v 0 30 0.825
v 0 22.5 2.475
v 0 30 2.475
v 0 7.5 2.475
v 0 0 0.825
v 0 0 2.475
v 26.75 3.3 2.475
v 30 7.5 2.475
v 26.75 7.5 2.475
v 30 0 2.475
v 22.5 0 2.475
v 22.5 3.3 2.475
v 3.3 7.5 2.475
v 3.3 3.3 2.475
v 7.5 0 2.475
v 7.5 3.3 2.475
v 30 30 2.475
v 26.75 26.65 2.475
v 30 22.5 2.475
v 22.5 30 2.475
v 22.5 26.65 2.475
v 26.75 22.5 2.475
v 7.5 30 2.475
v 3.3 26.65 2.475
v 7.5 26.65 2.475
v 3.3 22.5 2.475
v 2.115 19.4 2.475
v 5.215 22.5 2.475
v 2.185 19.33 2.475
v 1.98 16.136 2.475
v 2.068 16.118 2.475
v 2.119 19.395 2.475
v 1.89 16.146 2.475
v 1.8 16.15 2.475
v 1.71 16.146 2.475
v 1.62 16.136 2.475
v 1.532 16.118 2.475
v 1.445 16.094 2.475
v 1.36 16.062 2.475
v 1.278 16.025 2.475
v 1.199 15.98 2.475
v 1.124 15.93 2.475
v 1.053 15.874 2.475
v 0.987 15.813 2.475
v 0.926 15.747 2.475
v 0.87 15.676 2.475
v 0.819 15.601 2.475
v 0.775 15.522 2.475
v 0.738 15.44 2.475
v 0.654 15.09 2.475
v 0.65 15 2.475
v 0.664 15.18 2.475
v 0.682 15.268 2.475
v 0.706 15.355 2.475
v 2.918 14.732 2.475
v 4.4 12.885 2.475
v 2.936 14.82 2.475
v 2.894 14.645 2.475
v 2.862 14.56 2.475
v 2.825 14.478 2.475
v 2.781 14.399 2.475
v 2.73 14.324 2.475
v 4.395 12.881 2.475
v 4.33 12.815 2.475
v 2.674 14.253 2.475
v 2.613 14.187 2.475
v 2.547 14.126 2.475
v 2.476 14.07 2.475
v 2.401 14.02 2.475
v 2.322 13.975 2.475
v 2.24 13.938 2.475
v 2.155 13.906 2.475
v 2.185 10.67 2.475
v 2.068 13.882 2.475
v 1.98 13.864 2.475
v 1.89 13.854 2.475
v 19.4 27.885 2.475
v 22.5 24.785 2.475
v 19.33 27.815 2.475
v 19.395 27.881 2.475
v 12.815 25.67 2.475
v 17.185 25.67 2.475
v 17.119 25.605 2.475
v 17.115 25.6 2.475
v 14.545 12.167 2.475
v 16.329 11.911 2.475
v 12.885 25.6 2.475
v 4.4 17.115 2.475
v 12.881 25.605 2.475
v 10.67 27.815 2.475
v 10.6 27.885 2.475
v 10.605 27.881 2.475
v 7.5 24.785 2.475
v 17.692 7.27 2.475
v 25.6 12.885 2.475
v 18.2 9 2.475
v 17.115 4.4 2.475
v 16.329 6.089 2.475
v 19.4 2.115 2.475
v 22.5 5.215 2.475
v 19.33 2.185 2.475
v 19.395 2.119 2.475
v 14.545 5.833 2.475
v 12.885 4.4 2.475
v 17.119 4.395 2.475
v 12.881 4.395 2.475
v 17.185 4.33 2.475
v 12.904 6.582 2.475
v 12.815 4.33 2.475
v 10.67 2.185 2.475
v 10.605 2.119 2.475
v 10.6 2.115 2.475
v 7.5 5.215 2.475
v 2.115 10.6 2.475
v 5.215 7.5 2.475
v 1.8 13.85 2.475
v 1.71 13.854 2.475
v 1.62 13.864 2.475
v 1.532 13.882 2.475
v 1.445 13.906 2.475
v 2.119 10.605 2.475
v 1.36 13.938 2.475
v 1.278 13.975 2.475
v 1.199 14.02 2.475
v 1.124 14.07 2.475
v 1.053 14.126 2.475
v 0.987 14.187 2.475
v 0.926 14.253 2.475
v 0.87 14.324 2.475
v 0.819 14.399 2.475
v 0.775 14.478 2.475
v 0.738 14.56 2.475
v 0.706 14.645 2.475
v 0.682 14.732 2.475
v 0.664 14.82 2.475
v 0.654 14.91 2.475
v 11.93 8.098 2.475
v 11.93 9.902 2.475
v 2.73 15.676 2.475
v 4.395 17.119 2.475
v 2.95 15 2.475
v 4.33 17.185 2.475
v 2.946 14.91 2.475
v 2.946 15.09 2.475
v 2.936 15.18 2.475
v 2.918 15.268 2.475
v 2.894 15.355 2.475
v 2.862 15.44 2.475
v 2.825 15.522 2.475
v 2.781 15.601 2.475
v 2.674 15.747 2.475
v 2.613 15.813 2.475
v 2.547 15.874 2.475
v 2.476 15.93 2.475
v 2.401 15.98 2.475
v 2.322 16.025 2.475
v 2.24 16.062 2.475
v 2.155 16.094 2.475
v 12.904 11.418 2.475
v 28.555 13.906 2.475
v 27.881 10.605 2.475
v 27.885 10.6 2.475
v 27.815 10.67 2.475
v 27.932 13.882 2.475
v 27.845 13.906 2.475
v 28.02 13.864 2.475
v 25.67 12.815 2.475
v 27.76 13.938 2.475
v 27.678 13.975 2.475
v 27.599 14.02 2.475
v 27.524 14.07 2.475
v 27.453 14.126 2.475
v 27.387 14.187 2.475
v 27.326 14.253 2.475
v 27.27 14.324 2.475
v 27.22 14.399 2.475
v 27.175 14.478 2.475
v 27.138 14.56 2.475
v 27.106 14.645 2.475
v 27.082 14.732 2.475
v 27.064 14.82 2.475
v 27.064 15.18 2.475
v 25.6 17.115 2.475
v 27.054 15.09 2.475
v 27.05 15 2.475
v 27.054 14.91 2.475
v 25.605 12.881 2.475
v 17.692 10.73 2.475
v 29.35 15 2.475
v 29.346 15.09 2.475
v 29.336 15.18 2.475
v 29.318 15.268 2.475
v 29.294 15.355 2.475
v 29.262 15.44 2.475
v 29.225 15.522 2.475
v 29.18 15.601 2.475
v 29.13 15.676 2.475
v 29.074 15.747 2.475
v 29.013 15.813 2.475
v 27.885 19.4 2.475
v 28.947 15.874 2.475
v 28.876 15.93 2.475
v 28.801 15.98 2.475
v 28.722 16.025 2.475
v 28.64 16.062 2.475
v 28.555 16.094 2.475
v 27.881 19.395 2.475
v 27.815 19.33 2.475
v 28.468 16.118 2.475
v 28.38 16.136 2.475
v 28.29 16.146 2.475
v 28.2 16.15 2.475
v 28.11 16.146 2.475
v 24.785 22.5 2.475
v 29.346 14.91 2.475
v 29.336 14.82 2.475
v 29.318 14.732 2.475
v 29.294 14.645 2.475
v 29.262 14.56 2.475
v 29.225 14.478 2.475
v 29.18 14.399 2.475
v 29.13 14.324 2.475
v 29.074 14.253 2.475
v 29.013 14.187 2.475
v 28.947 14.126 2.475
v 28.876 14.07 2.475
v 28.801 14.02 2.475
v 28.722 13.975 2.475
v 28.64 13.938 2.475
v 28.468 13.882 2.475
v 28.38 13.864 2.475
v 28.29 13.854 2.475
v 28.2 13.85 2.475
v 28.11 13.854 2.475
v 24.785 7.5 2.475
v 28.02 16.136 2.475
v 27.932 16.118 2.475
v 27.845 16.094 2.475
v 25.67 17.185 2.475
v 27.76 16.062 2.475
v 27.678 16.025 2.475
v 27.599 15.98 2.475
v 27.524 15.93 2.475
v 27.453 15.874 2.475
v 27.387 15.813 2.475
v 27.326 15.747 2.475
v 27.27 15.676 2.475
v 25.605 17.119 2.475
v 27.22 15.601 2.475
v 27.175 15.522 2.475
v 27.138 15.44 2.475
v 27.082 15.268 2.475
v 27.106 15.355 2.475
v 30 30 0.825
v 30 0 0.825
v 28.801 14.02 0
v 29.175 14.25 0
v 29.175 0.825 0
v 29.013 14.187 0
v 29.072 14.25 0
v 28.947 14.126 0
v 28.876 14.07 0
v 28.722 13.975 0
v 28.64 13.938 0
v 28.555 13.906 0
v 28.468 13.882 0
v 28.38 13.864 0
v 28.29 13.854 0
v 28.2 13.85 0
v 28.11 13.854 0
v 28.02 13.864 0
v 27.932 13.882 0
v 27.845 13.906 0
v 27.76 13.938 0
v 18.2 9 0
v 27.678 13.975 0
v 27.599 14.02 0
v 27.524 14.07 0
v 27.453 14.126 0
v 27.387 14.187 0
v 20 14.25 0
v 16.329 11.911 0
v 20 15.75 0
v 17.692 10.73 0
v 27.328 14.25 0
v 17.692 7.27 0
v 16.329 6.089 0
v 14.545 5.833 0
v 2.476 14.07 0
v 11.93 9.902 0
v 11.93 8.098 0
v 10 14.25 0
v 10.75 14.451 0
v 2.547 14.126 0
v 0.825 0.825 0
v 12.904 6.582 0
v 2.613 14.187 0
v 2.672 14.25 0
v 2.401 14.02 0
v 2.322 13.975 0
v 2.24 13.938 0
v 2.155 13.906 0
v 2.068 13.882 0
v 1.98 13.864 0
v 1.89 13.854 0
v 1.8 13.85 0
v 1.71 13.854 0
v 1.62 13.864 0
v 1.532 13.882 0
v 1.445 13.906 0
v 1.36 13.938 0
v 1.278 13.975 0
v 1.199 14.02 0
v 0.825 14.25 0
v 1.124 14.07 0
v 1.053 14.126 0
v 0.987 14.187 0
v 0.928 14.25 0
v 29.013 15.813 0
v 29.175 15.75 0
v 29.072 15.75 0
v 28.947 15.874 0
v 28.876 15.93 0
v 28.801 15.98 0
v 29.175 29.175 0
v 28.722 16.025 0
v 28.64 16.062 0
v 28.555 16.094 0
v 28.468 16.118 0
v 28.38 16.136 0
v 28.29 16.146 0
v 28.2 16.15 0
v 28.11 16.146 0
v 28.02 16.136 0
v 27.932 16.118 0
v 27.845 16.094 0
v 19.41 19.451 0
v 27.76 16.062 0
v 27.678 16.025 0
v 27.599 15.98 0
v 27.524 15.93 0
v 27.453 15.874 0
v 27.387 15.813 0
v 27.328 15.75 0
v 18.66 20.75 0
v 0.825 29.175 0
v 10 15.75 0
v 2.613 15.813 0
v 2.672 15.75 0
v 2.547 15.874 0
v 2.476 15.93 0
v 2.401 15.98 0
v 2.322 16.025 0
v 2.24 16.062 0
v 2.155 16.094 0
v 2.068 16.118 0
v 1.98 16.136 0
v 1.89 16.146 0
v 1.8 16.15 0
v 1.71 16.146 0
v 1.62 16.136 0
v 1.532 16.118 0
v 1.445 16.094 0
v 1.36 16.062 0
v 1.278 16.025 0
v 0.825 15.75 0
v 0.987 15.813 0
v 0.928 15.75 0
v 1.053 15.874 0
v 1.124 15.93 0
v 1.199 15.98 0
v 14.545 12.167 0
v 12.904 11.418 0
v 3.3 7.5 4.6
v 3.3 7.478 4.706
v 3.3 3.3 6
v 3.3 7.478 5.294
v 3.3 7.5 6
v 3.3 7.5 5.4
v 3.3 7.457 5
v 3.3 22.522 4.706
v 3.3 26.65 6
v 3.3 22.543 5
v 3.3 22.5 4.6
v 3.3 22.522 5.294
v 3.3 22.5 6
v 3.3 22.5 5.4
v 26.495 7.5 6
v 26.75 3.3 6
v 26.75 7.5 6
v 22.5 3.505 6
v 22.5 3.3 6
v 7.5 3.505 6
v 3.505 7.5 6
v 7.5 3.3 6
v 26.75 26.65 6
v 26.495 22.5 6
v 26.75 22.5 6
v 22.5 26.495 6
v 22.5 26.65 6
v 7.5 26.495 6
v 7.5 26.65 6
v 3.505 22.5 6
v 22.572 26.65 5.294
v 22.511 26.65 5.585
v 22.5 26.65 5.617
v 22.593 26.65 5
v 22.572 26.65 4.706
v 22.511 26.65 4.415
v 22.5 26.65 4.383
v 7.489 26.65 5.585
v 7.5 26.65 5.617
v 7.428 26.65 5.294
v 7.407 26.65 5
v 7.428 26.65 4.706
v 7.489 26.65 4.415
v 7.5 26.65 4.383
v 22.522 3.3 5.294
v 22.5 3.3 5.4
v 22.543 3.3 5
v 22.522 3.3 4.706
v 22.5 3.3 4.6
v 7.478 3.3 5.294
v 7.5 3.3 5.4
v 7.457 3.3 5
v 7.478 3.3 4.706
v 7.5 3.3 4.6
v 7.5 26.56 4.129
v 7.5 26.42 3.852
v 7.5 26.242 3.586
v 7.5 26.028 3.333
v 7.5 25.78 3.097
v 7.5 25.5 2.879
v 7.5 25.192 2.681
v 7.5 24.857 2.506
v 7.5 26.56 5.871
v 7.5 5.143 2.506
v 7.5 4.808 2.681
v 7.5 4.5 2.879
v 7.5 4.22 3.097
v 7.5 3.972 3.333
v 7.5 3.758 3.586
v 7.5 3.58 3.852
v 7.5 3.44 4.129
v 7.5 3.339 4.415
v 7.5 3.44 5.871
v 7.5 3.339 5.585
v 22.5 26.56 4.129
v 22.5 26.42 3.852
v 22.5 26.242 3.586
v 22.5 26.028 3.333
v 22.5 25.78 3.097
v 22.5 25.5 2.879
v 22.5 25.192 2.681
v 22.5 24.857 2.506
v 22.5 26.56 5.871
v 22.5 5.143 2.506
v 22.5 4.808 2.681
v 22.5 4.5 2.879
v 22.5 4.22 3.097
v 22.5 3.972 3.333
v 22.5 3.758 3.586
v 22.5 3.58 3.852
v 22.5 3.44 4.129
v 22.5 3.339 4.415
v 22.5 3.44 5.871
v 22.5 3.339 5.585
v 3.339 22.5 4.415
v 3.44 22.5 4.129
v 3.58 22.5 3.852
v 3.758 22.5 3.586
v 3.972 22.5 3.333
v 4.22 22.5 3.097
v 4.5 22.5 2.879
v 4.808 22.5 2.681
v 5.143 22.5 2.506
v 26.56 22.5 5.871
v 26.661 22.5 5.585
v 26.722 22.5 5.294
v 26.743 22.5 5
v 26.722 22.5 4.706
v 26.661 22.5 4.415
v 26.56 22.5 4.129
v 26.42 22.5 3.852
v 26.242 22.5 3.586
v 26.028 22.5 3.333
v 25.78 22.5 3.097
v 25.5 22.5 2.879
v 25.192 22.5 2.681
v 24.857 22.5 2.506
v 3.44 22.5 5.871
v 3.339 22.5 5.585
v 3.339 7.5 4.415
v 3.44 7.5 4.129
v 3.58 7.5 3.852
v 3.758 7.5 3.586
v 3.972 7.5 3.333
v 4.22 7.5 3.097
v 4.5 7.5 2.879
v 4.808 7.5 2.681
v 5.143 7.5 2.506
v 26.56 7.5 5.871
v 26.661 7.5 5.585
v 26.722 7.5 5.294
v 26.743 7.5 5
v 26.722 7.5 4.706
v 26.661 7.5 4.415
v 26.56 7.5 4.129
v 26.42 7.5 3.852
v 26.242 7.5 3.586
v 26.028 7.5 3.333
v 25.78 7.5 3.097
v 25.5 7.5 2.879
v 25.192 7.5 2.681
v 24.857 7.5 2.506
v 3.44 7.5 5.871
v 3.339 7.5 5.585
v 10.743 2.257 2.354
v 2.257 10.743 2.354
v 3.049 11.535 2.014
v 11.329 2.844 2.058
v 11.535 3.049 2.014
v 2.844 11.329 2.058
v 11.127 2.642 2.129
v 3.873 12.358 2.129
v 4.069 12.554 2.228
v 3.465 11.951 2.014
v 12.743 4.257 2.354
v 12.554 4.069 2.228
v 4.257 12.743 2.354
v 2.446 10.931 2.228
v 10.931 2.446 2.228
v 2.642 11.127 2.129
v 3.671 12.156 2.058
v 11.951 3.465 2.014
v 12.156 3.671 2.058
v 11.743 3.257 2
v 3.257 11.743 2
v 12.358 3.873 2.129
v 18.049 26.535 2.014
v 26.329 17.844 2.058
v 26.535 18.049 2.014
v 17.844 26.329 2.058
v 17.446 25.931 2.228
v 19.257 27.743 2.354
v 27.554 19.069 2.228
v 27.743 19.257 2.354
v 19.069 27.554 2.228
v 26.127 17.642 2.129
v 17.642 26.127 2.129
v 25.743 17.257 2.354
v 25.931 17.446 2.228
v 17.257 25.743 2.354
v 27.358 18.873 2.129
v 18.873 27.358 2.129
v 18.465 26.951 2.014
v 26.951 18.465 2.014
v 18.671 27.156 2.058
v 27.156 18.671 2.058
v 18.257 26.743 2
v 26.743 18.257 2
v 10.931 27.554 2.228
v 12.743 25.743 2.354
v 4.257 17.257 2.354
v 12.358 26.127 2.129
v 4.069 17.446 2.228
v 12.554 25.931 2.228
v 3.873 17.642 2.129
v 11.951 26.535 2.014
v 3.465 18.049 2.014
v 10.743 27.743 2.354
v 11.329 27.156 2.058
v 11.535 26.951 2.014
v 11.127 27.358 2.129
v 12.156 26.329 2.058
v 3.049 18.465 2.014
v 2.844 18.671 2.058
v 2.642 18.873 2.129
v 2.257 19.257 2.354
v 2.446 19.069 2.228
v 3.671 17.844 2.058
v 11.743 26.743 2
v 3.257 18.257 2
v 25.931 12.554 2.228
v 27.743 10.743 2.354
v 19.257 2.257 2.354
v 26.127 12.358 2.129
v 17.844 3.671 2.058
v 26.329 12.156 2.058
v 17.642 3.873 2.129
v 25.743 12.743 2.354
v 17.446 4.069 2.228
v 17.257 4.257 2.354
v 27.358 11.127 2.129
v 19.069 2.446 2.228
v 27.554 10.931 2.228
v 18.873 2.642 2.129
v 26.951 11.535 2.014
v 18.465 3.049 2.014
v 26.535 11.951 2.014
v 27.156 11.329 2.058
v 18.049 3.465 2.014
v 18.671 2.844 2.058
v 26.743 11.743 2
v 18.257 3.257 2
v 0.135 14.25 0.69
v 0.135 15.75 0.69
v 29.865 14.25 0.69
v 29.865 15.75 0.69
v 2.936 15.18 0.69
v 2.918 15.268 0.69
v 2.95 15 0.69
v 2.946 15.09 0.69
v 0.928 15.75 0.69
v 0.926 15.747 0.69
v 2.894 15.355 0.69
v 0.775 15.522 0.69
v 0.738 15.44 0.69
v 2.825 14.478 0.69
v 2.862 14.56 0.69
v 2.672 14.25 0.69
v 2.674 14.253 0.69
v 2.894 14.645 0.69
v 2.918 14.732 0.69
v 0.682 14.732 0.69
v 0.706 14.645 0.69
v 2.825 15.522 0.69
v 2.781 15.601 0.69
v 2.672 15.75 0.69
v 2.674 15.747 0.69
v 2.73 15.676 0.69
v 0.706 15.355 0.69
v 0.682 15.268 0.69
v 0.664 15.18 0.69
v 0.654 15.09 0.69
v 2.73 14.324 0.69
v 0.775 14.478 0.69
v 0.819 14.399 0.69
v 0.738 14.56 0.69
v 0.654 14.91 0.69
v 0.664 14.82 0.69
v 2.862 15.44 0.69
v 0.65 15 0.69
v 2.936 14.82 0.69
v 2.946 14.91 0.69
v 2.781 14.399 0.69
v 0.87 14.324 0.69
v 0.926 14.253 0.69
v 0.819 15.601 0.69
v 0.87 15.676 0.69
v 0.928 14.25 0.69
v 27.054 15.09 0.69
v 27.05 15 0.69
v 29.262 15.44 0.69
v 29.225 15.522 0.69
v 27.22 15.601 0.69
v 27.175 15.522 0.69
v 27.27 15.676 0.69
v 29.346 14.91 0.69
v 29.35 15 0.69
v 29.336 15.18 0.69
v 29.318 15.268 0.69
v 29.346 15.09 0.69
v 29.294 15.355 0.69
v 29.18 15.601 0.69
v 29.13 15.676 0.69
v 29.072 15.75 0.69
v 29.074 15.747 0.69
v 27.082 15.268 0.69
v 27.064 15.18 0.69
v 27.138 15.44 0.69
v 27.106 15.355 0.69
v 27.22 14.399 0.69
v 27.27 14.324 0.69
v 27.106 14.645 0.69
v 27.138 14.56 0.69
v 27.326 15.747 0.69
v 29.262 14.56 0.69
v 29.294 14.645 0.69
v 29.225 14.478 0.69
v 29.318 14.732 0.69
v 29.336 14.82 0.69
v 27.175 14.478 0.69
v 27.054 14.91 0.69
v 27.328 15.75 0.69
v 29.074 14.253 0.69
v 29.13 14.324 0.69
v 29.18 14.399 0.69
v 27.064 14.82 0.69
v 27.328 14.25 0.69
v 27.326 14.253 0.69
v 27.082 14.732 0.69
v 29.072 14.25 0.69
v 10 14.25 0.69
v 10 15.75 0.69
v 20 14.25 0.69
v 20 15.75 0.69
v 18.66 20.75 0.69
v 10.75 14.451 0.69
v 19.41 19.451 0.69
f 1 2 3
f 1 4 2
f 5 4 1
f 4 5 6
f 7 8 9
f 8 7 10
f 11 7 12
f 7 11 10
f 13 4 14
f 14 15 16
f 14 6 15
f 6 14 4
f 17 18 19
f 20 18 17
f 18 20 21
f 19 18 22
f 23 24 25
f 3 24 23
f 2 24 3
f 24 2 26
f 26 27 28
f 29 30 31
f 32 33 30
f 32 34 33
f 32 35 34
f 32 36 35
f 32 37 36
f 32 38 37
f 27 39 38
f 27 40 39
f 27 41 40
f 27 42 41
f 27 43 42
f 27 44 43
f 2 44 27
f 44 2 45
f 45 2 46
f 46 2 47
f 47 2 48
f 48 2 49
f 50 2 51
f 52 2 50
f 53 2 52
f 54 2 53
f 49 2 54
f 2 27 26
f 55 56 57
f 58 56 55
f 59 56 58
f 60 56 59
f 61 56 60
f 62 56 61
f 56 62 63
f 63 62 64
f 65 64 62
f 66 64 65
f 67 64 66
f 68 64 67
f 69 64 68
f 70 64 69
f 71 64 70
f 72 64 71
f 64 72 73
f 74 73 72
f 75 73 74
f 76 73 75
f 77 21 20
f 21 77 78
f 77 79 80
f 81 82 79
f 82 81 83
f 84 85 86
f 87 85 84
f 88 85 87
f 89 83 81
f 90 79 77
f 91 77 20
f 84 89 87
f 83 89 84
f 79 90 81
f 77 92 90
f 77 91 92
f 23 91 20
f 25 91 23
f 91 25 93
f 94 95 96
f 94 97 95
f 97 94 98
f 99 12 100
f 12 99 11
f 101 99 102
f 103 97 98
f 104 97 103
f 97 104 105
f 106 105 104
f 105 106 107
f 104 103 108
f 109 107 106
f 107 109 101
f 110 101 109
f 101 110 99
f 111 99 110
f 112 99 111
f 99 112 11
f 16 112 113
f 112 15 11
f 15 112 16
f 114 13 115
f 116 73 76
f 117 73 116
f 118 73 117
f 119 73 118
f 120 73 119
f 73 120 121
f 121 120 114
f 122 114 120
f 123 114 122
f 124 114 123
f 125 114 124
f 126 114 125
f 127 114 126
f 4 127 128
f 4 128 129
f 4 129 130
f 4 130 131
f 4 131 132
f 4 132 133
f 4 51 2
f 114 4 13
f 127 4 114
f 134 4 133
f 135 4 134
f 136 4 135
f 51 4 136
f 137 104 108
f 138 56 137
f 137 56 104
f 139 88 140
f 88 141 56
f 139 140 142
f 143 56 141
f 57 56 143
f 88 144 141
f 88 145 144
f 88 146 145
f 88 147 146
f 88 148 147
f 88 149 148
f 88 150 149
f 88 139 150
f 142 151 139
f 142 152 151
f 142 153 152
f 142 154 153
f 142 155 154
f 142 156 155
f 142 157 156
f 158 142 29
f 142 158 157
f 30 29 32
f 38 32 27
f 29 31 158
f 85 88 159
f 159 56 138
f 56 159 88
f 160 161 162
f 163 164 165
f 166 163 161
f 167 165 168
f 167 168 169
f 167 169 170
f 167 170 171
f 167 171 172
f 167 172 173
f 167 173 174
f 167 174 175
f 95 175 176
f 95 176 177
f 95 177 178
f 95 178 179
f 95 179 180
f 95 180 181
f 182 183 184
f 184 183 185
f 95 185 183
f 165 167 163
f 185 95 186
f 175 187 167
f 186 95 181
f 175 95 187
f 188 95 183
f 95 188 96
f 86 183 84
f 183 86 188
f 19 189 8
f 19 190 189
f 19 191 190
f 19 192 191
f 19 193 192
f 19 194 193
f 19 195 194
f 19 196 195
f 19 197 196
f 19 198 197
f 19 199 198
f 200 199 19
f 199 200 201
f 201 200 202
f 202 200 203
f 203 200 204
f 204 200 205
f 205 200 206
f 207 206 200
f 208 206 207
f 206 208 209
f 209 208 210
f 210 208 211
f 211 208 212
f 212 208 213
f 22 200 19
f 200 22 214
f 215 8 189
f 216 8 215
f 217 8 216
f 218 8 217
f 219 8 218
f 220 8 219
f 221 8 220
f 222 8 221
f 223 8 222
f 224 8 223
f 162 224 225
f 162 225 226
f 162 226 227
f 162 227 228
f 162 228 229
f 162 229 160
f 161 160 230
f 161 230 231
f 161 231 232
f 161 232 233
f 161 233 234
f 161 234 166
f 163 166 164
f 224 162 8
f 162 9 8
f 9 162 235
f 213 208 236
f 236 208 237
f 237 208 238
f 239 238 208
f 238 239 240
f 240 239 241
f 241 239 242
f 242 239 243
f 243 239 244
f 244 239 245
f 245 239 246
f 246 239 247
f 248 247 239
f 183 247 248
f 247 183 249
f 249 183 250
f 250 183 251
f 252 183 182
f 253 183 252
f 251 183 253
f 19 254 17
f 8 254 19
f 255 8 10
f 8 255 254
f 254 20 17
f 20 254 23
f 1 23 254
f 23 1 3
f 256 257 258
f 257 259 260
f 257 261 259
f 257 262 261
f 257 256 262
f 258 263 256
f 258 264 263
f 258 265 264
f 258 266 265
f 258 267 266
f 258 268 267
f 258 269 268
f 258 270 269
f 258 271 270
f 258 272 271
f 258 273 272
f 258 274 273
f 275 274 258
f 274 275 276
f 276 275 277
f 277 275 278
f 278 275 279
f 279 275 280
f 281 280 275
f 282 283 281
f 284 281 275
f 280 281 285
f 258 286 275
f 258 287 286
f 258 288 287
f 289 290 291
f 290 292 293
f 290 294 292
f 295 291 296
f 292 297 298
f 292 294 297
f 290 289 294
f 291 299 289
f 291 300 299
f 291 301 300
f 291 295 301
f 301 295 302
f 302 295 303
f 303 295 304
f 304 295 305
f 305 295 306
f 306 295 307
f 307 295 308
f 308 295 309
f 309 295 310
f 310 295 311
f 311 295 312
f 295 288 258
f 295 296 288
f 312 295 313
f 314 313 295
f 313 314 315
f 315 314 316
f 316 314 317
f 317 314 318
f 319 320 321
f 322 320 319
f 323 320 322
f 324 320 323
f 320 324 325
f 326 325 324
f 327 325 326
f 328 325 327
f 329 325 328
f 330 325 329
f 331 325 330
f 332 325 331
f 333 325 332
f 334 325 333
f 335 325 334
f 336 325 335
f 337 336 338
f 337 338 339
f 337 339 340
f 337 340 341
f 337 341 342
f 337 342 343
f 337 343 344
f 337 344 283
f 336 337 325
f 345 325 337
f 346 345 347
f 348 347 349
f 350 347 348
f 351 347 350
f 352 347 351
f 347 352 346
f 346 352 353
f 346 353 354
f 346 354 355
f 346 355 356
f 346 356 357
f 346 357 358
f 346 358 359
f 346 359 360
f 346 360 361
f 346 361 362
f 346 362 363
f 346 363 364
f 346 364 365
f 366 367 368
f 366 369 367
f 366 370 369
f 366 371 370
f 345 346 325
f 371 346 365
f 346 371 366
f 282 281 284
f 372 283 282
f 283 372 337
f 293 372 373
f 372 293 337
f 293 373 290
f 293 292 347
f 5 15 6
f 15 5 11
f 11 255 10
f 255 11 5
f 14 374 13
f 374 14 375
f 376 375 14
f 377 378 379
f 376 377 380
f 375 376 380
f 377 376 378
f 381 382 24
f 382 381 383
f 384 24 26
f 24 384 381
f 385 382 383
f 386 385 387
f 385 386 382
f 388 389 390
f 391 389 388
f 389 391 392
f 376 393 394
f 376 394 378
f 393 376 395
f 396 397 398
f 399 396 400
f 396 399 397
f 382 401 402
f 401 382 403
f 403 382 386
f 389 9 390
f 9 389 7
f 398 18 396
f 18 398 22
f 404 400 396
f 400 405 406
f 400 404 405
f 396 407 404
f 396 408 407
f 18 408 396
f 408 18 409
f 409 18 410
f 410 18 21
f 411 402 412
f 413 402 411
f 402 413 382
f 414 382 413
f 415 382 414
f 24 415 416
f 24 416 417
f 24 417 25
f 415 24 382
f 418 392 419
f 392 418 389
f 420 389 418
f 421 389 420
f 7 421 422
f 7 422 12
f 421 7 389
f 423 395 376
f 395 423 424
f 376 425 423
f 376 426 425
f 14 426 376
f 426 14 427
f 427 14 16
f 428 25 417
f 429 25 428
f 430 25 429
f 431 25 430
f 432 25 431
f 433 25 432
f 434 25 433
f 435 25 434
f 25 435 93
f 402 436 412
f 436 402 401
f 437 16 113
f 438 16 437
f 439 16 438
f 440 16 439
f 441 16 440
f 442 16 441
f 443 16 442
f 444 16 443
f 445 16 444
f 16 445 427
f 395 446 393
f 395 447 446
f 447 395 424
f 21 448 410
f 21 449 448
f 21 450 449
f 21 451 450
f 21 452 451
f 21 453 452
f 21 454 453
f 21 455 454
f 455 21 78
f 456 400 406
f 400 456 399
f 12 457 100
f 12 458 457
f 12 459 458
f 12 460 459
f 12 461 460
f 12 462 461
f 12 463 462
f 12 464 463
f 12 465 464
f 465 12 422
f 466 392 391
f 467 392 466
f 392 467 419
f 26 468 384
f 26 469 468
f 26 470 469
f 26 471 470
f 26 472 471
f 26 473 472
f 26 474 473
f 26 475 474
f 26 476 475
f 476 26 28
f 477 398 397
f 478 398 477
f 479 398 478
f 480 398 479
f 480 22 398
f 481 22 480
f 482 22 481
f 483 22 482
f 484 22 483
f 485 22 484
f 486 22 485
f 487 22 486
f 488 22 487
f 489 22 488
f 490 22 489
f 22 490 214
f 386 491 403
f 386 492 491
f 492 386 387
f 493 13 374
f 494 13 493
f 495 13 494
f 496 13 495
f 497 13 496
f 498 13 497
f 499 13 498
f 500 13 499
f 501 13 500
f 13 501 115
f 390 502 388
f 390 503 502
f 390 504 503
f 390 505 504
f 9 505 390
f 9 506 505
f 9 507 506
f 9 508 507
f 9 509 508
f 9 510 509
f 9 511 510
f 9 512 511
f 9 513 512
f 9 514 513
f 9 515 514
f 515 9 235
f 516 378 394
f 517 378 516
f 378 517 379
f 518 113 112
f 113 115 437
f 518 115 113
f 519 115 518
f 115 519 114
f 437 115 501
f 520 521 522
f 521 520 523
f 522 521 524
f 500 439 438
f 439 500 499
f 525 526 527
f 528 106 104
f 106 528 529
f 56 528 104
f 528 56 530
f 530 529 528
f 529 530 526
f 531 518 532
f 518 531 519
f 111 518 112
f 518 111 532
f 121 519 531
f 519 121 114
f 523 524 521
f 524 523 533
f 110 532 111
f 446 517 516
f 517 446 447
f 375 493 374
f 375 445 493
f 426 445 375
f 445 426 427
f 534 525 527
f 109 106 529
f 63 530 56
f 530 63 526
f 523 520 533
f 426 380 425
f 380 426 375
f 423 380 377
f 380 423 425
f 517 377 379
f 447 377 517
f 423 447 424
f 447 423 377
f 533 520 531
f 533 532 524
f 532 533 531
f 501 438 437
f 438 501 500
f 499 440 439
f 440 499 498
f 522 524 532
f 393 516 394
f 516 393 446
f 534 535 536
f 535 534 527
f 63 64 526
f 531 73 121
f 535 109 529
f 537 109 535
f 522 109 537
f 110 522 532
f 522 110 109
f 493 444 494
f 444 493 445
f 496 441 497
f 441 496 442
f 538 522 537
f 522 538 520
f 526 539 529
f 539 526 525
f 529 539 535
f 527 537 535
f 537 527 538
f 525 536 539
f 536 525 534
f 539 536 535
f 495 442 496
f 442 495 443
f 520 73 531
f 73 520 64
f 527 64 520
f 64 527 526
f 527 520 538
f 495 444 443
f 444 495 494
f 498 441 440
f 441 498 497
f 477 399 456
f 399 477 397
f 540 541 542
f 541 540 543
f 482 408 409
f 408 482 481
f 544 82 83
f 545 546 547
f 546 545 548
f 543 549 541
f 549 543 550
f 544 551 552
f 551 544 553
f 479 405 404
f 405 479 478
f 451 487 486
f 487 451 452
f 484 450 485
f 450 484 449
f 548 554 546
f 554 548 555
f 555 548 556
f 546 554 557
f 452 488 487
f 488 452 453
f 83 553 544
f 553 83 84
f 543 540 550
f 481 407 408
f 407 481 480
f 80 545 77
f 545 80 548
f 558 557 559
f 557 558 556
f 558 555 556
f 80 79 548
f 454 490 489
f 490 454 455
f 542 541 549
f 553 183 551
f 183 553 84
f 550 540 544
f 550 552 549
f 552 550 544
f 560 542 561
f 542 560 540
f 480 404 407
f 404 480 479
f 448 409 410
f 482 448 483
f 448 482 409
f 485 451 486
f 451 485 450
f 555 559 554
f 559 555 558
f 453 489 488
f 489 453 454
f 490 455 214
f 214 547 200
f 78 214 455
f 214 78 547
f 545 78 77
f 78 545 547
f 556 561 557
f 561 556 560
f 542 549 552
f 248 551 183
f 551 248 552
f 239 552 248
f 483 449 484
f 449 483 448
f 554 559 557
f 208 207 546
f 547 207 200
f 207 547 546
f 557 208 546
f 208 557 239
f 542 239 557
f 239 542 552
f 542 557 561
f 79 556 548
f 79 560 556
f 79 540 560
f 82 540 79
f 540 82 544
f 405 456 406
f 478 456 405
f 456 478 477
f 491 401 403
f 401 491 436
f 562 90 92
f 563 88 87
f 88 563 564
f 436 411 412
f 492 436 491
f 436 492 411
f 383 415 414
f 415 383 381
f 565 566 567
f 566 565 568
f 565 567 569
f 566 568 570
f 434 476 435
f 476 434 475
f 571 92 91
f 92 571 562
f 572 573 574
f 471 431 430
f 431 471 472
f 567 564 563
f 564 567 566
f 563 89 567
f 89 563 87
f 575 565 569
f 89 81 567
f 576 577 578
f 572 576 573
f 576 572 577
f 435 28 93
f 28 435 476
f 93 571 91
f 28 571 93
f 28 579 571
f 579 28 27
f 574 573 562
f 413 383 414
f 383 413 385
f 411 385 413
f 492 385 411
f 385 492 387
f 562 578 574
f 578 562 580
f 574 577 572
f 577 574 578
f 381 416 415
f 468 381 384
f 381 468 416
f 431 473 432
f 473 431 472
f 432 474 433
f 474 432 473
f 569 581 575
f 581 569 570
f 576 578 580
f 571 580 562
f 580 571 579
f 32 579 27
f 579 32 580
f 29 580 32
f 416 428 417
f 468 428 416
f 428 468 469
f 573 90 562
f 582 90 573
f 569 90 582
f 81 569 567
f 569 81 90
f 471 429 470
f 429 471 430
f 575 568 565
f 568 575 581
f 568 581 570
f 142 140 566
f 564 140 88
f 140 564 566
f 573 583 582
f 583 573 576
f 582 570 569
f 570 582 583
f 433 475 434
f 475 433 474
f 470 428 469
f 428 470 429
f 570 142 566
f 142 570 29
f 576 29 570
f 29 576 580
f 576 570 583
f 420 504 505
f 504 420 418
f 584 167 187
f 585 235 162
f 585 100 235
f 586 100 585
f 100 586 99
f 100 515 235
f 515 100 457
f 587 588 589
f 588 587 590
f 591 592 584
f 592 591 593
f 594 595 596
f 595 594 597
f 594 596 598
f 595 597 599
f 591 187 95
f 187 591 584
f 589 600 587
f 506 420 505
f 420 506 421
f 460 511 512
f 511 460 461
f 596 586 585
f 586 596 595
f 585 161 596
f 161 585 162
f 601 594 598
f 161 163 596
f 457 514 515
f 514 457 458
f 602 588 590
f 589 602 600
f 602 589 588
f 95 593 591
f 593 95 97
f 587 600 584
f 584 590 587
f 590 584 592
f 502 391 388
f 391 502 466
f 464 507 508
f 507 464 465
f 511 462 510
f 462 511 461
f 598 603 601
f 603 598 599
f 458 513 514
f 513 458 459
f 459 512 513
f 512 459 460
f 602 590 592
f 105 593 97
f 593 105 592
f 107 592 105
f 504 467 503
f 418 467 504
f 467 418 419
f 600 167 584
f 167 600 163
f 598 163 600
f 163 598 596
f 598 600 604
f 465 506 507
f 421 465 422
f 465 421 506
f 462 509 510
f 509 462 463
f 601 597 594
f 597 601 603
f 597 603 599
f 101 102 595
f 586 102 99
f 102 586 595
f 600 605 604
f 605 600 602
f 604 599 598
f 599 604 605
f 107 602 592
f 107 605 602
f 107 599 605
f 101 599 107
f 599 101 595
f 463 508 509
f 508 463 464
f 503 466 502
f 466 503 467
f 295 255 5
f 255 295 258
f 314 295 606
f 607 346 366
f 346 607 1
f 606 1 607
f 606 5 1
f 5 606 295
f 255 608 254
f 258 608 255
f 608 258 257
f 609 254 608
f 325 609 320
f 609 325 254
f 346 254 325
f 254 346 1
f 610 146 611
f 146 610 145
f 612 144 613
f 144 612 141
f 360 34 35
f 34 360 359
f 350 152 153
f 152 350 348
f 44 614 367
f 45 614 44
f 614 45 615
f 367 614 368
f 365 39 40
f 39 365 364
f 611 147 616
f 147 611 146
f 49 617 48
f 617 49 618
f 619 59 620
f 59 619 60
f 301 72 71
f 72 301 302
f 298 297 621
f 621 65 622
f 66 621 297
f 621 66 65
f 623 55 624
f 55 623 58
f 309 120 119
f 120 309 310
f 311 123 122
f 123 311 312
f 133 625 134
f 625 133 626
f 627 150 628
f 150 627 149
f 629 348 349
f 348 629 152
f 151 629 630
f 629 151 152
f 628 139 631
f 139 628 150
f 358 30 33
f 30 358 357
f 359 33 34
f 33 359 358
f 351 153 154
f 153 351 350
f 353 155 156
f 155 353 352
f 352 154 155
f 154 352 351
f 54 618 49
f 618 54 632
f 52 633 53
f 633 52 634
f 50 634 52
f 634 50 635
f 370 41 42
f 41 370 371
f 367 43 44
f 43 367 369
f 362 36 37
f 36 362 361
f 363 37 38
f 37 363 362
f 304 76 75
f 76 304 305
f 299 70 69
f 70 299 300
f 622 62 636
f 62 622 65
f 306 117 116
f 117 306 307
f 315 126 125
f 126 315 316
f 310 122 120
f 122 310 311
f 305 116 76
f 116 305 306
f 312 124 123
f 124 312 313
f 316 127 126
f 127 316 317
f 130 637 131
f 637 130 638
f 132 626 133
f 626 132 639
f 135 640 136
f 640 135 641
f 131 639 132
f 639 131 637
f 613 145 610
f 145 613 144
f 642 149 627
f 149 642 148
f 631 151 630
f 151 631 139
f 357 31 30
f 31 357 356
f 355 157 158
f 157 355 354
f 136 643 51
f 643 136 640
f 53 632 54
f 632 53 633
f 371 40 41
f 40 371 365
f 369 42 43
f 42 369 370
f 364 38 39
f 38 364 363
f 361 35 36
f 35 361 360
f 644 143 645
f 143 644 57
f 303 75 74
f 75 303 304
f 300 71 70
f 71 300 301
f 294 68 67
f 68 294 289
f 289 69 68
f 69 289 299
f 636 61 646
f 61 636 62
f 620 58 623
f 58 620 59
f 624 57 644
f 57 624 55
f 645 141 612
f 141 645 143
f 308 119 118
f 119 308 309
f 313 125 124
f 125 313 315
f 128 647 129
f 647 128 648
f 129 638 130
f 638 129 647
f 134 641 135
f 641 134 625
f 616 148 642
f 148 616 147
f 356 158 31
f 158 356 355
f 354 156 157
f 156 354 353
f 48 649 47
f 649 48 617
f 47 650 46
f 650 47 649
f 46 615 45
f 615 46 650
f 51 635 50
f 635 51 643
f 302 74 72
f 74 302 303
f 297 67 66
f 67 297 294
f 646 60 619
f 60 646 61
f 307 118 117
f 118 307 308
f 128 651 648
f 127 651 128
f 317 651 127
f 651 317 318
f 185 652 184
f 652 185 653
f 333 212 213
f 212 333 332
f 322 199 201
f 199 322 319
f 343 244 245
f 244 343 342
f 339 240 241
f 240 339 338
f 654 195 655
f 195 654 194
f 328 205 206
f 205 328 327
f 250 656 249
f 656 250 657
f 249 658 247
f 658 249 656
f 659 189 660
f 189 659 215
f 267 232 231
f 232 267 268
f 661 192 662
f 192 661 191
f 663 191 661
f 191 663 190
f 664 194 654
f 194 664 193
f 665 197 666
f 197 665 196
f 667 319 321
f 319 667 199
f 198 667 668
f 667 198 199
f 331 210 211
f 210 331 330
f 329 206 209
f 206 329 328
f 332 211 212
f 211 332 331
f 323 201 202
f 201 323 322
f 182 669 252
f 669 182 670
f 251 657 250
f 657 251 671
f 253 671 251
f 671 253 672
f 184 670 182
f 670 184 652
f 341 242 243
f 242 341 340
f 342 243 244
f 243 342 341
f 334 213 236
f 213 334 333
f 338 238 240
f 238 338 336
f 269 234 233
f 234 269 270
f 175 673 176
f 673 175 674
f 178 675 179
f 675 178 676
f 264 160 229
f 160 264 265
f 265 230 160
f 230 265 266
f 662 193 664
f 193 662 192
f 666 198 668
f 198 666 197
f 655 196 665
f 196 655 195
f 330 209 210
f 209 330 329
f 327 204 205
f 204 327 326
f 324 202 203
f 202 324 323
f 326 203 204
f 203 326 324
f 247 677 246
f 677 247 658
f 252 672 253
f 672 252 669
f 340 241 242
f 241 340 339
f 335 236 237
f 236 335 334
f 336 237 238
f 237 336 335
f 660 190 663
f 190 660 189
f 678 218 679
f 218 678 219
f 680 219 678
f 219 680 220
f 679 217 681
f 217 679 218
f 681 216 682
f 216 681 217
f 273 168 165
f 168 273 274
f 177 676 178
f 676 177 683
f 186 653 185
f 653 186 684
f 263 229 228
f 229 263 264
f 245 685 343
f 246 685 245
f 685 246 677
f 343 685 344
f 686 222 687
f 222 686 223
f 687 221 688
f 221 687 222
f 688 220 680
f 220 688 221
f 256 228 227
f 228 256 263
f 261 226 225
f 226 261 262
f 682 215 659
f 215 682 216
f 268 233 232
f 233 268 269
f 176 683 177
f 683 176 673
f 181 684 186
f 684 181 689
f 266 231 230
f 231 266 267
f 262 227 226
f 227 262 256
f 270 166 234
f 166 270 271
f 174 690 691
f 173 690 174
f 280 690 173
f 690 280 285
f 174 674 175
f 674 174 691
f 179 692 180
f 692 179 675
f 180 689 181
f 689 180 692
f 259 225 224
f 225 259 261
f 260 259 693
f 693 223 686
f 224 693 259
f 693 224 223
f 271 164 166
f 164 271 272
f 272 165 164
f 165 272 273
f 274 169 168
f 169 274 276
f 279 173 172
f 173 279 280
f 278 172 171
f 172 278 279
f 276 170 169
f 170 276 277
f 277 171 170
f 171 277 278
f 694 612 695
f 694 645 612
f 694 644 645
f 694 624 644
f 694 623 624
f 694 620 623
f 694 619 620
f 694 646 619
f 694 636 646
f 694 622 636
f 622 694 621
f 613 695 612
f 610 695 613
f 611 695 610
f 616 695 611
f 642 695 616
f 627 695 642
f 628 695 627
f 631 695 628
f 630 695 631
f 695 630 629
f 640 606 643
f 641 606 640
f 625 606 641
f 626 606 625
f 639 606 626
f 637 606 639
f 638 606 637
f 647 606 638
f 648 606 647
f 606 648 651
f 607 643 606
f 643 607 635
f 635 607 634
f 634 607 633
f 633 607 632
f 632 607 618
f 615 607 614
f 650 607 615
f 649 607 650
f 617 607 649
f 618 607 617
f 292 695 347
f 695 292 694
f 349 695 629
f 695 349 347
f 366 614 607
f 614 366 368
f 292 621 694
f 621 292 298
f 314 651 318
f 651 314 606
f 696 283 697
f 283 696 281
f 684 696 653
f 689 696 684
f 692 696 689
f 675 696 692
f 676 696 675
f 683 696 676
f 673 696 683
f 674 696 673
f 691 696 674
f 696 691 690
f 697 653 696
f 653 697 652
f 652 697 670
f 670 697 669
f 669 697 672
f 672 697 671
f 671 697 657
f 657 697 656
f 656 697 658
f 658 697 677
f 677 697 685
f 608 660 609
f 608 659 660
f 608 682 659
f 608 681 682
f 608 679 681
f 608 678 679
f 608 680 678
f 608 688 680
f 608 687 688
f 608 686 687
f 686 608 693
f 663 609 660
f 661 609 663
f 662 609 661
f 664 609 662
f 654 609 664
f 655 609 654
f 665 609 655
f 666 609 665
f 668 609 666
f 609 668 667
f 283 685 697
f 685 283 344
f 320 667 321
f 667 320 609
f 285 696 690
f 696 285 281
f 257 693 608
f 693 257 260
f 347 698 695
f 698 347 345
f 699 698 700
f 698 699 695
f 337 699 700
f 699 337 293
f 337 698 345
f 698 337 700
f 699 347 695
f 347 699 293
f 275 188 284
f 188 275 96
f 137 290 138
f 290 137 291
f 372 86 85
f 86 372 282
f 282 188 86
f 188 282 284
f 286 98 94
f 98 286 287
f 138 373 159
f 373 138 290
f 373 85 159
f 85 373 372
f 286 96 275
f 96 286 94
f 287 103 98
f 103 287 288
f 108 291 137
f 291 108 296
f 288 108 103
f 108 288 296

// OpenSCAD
// file: settings.scad
cube_width=30;
cube_height=16;
cube_thickness=3.3;

cap_width=30;
cap_height=6;
cap_thickness=3.3;

glyph_depth=0.7;
glyph_thickness=1.5;

photo_resitor_hole_r = 2.4;
spring_contact_hole_r = 3.1;
// file: sym_switch_no.scad
// no = normally open
module switch_no(length, width, thickness, height)
{
    translate([0,-thickness/2,0])cube([length/2-width/2, thickness, height]);
    translate([(length/2+width/2),-thickness/2,0])cube([(length/2-width/2), thickness, height]);
    
    translate([(length/2-width/2),+thickness/2, 0])rotate([0,0,-60])cube([thickness, width, height]);
    
}

switch_no(30, 12, 1, 1);
// file: cap_1x1.scad
include <settings.scad>

module cap_1x1(width, height, thickness, holes_mask)
{
    width1=width-thickness;
    shrink_teeth = 0.02;
    st = shrink_teeth;
    difference()
    {
        union()
        {
            cube([width, width, thickness*3/4]);
            translate([thickness+st,thickness+st,0])cube([width-2*(thickness+st-0.025), width-2*(thickness+st+0.025), height]);
        }
        union()
        {
            //translate([width/2,width/2,0])rotate([0,0,45])translate([-width1/2,-width1/2,thickness*3/4]) cube([width1,width1,height]);
            translate([width/4,0,thickness*3/4])cube([width/2,width,height]);
            translate([0,width/4,thickness*3/4])cube([width,width/2,height]);
            translate([width/4,width/4,width/6])rotate([90,0,45])translate([0,0,-height])cylinder(r=height/2, h=2*height, $fn=64);
            translate([3*width/4,3*width/4,width/6])rotate([90,0,45])translate([0,0,-height])cylinder(r=height/2, h=height*2, $fn=64);
            translate([width/4,3*width/4,width/6])rotate([90,0,-45])translate([0,0,-height])cylinder(r=height/2, h=2*height, $fn=64);
            translate([3*width/4,width/4,width/6])rotate([90,0,-45])translate([0,0,-height])cylinder(r=height/2, h=height*2, $fn=64);
            //corners
            translate([0,0.25*thickness,0])rotate([45,0,0]) translate([-0.5*width, -width, -0.5*height]) cube([2*width, width, 2*height]);
            translate([0.25*thickness,0,0]) rotate([0,-45,0]) translate([-width, -0.5*width, -0.5*height]) cube([width, 2*width, 2*height]);
            translate([width-0.25*thickness,0,0]) rotate([0,45,0]) translate([0, 0, -0.5*height]) cube([width, 2*width, 2*height]);
            translate([0,width-0.25*thickness,0]) rotate([-45,0,0]) translate([-0.5*width, 0, -0.5*height]) cube([2*width, width, 2*height]);
            
            if (holes_mask >= 8)
            {
                translate([width/2, thickness-1.5, -0.5]) cylinder(r=1.15, h=height*1.5, $fn=80);
            }
            if ((holes_mask%8) >= 4)
            {
                translate([width/2, width-thickness+1.5, -0.5]) cylinder(r=1.15, h=height*1.5, $fn=80);
            }
            if ((holes_mask%4)>= 2)
            {
                translate([thickness-1.5, width/2, -0.5]) cylinder(r=1.15, h=height*1.5, $fn=80);
            }
            if (holes_mask%2 >= 1)
            {
                translate([width-thickness+1.5, width/2, -0.5]) cylinder(r=1.15, h=height*1.5, $fn=80);
            }
        }
    }
}

cap_1x1(cap_width, cap_height, cap_thickness, 9);
//ring(10,1,1);
//arrow(1, 20, 3, 1);
//transistor_npn(30, 1, 1);
// main file
use <cap_1x1.scad>
use <sym_switch_no.scad>
include <settings.scad>

module cap_1x1_switch(width, height, thickness)
{
    difference()
    {
        cap_1x1(width, height, thickness, 3);
        translate([0,width/2,-0.01]) switch_no(width, width/3, glyph_thickness, glyph_depth);
        translate([width/2,3*width/10, -0.01]) cylinder(r=3.2, h=height);
    }
}

//https://www.amazon.nl/-/en/gp/product/B07QLYVT4G/ref=ox_sc_act_image_1?smid=A1IVC609T2V6KT&psc=1

cap_1x1_switch(cap_width, cap_height, cap_thickness);
